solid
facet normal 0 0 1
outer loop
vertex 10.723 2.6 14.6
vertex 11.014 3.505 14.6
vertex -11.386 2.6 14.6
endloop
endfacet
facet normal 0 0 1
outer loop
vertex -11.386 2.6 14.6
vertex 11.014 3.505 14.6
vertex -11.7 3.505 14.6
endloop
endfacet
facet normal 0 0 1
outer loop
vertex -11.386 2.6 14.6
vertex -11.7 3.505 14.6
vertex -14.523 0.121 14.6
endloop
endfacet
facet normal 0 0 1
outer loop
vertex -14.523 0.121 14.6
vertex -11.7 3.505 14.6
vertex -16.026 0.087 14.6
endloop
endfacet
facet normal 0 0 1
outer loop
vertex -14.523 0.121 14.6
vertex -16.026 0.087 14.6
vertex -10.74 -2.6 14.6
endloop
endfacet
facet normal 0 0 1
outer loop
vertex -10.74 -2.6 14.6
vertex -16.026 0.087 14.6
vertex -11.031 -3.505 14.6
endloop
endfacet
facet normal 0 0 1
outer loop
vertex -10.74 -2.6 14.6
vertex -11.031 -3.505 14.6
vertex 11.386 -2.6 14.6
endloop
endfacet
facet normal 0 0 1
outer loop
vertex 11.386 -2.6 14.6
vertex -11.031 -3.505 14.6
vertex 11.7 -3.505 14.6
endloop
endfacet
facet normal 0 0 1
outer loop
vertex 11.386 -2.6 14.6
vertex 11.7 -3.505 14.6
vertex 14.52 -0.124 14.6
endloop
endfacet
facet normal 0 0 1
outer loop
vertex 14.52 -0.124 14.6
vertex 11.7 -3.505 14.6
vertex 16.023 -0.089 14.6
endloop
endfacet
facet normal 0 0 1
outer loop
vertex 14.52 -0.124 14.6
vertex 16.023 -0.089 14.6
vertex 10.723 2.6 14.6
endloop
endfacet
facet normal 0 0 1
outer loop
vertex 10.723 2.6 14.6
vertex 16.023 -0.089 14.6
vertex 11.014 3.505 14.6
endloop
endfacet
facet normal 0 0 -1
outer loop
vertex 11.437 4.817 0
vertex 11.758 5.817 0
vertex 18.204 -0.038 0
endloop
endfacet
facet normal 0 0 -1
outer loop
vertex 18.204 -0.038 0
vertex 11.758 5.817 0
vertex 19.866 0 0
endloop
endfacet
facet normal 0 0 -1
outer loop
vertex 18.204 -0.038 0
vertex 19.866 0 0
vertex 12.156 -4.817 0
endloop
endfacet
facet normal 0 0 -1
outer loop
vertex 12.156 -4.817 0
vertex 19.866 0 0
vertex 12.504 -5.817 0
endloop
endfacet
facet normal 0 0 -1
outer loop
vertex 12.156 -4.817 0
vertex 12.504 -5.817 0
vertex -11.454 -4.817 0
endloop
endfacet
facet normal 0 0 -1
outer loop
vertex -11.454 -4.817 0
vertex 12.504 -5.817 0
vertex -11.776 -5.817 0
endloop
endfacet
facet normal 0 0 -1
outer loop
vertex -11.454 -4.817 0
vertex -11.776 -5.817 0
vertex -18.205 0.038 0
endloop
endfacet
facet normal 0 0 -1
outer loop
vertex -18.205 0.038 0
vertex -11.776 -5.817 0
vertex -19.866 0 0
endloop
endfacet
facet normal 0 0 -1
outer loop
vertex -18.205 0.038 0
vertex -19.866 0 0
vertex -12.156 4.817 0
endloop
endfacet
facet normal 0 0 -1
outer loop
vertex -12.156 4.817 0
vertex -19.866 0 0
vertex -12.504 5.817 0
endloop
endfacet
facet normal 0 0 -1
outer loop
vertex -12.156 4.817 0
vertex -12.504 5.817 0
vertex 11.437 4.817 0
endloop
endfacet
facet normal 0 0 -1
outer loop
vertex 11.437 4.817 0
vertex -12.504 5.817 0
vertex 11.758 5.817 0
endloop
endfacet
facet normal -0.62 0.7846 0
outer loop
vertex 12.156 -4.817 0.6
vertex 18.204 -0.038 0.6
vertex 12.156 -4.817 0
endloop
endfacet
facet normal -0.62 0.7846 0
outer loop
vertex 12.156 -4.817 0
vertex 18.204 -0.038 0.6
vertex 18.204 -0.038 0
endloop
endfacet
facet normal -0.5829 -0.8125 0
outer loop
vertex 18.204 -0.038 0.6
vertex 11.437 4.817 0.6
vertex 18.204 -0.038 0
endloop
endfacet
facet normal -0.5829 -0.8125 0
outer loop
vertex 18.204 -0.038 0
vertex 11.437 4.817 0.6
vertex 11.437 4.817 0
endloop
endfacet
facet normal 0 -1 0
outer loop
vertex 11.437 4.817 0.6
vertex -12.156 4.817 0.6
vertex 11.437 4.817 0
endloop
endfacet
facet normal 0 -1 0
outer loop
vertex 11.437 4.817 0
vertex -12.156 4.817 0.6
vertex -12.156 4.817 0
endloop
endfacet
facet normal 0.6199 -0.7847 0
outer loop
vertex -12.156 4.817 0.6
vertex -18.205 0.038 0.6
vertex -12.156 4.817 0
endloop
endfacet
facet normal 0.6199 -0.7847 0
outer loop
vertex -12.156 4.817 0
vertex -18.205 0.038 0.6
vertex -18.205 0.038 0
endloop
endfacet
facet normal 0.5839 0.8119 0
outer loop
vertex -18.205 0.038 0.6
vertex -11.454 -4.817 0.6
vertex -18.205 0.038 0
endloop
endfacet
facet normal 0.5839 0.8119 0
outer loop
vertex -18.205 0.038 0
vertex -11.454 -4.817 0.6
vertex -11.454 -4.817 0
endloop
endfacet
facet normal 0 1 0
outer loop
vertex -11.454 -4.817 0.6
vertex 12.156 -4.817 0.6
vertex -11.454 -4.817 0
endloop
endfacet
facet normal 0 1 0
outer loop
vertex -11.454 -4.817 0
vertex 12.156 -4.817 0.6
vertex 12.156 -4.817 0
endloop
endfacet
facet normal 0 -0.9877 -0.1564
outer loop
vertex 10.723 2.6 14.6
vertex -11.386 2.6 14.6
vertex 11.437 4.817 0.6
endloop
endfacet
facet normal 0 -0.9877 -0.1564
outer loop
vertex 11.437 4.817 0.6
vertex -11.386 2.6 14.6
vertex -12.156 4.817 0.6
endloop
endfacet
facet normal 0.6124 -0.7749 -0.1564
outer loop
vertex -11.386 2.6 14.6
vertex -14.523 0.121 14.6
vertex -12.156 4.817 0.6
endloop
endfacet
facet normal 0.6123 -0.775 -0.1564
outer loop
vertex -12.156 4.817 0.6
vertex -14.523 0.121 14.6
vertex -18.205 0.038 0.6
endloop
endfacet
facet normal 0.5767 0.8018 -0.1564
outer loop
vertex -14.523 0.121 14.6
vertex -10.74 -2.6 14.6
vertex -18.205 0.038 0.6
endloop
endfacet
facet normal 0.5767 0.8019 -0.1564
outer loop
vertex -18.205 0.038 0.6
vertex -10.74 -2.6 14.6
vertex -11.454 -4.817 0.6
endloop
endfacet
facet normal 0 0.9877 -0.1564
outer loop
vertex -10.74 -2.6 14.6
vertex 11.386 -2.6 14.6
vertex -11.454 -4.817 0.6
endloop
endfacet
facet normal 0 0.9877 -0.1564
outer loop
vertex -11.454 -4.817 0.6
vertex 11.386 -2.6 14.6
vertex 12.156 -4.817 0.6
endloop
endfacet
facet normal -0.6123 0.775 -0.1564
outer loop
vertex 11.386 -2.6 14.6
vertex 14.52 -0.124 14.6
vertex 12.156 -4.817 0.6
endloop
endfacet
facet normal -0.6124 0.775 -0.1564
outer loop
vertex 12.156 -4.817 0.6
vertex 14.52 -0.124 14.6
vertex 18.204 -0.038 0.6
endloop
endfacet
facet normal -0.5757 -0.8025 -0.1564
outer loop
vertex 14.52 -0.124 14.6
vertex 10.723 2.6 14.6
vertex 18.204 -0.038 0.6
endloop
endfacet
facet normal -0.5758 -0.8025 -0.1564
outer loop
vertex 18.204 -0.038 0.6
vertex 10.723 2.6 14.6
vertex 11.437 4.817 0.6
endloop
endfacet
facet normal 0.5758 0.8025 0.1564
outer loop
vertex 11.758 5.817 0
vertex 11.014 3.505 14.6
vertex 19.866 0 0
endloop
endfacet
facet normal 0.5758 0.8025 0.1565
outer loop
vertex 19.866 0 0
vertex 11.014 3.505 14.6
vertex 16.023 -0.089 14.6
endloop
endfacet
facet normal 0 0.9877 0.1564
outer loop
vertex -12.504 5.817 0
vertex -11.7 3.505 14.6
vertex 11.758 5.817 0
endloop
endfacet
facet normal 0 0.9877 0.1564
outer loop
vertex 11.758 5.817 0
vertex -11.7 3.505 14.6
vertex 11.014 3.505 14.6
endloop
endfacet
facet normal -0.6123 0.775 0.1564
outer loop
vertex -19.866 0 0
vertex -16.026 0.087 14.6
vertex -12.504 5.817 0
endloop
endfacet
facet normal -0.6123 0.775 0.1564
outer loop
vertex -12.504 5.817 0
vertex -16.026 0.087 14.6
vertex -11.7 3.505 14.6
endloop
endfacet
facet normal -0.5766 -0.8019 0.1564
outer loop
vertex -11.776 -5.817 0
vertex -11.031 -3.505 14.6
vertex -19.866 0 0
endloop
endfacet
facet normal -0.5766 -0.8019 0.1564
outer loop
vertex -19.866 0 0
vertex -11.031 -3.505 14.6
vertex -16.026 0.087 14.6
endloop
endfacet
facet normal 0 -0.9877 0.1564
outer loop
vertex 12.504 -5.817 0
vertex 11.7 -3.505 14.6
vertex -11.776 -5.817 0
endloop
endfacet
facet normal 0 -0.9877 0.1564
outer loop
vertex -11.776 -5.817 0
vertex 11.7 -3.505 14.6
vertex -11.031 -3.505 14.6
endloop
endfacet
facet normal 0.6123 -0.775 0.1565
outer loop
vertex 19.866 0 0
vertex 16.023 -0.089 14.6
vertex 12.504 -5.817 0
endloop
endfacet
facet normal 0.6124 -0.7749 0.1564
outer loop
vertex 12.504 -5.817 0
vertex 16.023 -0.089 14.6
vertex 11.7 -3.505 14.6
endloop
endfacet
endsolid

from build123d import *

# Parameters (mm, degrees)
LINEAR_AUSTRAGEN_D_NN1_DEPTH         = 0.6
LINEAR_AUSTRAGEN_D_NN2_DEPTH         = 14
LINEAR_AUSTRAGEN_D_NN2_DRAFT         = -9
SCHNITT_LINEAR_AUSTRAGEN_D_NN1_DEPTH = 16
SCHNITT_LINEAR_AUSTRAGEN_D_NN1_DRAFT = 9


with BuildPart() as part:
    # Skizze1 → Linear-Austragen-Dünn1 (new body)
    with BuildSketch(Plane.XY):
        Polygon((19.865941325, 0), (11.758199437, 5.817213911), (-12.503529969, 5.817213911), (-19.865941325, 0), (-11.77637823, -5.817213911), (-11.17637823, -5.817213911), (-3.47637823, -5.817213911), (4.22362177, -5.817213911), (11.92362177, -5.817213911), (12.503529969, -5.817213911), align=None)
        Polygon((18.204210014, -0.038494533), (11.436566371, 4.817213911), (-12.156143301, 4.817213911), (-18.205362025, 0.037584302), (-11.45415826, -4.817213911), (-11.17637823, -4.817213911), (-3.47637823, -4.817213911), (4.22362177, -4.817213911), (11.92362177, -4.817213911), (12.156143301, -4.817213911), align=None, mode=Mode.SUBTRACT)
    extrude(amount=LINEAR_AUSTRAGEN_D_NN1_DEPTH)


with BuildPart() as linear_austragen_d_nn2_tool:
    # Skizze2 → Linear-Austragen-Dünn2 (with draft: the straight prism first)
    with BuildSketch(Plane.XY.offset(0.6)):
        Polygon((-12.503529969, 5.817213911), (-19.865941325, 0), (-11.77637823, -5.817213911), (12.503529969, -5.817213911), (19.865941325, 0), (11.758199437, 5.817213911), align=None)
        Polygon((-12.156143301, 4.817213911), (-18.205362025, 0.037584302), (-11.45415826, -4.817213911), (12.156143301, -4.817213911), (18.204210014, -0.038494533), (11.436566371, 4.817213911), align=None, mode=Mode.SUBTRACT)
    extrude(amount=LINEAR_AUSTRAGEN_D_NN2_DEPTH)
    # Linear-Austragen-Dünn2: the draft: its side faces are tilted about the plane it starts from
    linear_austragen_d_nn2_sides = [linear_austragen_d_nn2_tool.faces().sort_by_distance(p)[0] for p in [
        (-16.184735647, 2.908606956, 7.6),
        (-15.821159778, -2.908606956, 7.6),
        (0.363575869, -5.817213911, 7.6),
        (16.184735647, -2.908606956, 7.6),
        (15.812070381, 2.908606956, 7.6),
        (-0.372665266, 5.817213911, 7.6),
        (-0.359788465, 4.817213911, 7.6),
        (14.820388192, 2.389359689, 7.6),
        (15.180176658, -2.427854222, 7.6),
        (0.35099252, -4.817213911, 7.6),
        (-14.829760143, -2.389814805, 7.6),
        (-15.180752663, 2.427399106, 7.6),
    ]]
    draft(linear_austragen_d_nn2_sides, Plane.XY.offset(0.6), LINEAR_AUSTRAGEN_D_NN2_DRAFT)


with BuildPart() as part_1:
    add(part.part)

    # Linear-Austragen-Dünn2: add linear_austragen_d_nn2_tool
    add(linear_austragen_d_nn2_tool.part)


with BuildPart() as schnitt_linear_austragen_d_nn1_tool:
    # Skizze3 → Schnitt-Linear-Austragen-Dünn1 (with draft: the straight prism first)
    with BuildSketch(Plane(origin=(0, 0, 0), x_dir=(-1, 0, 0), z_dir=(0, 0, -1))):
        Polygon((-20.862980112, 0.02309672), (-12.71196197, -6.417213911), (11.969710212, -6.417213911), (20.862288905, -0.022550581), (12.71196197, 6.417213911), (-11.951179276, 6.417213911), align=None)
        Polygon((-19.865941325, 0), (-12.503529969, -5.817213911), (11.77637823, -5.817213911), (19.865941325, 0), (12.503529969, 5.817213911), (-11.758199437, 5.817213911), align=None, mode=Mode.SUBTRACT)
    extrude(amount=-SCHNITT_LINEAR_AUSTRAGEN_D_NN1_DEPTH)
    # Schnitt-Linear-Austragen-Dünn1: the draft: its side faces are tilted about the plane it starts from
    schnitt_linear_austragen_d_nn1_sides = [schnitt_linear_austragen_d_nn1_tool.faces().sort_by_distance(p)[0] for p in [
        (16.787471041, -3.197058596, 8),
        (0.371125879, -6.417213911, 8),
        (-16.415999558, -3.219882246, 8),
        (-16.787125437, 3.197331665, 8),
        (-0.380391347, 6.417213911, 8),
        (16.407079694, 3.220155315, 8),
        (15.812070381, 2.908606956, 8),
        (-0.372665266, 5.817213911, 8),
        (-16.184735647, 2.908606956, 8),
        (-15.821159778, -2.908606956, 8),
        (0.363575869, -5.817213911, 8),
        (16.184735647, -2.908606956, 8),
    ]]
    draft(schnitt_linear_austragen_d_nn1_sides, Plane(origin=(0, 0, 0), x_dir=(-1, 0, 0), z_dir=(0, 0, -1)), SCHNITT_LINEAR_AUSTRAGEN_D_NN1_DRAFT)


with BuildPart() as part_2:
    add(part_1.part)

    # Schnitt-Linear-Austragen-Dünn1: cut by schnitt_linear_austragen_d_nn1_tool
    add(schnitt_linear_austragen_d_nn1_tool.part, mode=Mode.SUBTRACT)


solid = part_2.part
